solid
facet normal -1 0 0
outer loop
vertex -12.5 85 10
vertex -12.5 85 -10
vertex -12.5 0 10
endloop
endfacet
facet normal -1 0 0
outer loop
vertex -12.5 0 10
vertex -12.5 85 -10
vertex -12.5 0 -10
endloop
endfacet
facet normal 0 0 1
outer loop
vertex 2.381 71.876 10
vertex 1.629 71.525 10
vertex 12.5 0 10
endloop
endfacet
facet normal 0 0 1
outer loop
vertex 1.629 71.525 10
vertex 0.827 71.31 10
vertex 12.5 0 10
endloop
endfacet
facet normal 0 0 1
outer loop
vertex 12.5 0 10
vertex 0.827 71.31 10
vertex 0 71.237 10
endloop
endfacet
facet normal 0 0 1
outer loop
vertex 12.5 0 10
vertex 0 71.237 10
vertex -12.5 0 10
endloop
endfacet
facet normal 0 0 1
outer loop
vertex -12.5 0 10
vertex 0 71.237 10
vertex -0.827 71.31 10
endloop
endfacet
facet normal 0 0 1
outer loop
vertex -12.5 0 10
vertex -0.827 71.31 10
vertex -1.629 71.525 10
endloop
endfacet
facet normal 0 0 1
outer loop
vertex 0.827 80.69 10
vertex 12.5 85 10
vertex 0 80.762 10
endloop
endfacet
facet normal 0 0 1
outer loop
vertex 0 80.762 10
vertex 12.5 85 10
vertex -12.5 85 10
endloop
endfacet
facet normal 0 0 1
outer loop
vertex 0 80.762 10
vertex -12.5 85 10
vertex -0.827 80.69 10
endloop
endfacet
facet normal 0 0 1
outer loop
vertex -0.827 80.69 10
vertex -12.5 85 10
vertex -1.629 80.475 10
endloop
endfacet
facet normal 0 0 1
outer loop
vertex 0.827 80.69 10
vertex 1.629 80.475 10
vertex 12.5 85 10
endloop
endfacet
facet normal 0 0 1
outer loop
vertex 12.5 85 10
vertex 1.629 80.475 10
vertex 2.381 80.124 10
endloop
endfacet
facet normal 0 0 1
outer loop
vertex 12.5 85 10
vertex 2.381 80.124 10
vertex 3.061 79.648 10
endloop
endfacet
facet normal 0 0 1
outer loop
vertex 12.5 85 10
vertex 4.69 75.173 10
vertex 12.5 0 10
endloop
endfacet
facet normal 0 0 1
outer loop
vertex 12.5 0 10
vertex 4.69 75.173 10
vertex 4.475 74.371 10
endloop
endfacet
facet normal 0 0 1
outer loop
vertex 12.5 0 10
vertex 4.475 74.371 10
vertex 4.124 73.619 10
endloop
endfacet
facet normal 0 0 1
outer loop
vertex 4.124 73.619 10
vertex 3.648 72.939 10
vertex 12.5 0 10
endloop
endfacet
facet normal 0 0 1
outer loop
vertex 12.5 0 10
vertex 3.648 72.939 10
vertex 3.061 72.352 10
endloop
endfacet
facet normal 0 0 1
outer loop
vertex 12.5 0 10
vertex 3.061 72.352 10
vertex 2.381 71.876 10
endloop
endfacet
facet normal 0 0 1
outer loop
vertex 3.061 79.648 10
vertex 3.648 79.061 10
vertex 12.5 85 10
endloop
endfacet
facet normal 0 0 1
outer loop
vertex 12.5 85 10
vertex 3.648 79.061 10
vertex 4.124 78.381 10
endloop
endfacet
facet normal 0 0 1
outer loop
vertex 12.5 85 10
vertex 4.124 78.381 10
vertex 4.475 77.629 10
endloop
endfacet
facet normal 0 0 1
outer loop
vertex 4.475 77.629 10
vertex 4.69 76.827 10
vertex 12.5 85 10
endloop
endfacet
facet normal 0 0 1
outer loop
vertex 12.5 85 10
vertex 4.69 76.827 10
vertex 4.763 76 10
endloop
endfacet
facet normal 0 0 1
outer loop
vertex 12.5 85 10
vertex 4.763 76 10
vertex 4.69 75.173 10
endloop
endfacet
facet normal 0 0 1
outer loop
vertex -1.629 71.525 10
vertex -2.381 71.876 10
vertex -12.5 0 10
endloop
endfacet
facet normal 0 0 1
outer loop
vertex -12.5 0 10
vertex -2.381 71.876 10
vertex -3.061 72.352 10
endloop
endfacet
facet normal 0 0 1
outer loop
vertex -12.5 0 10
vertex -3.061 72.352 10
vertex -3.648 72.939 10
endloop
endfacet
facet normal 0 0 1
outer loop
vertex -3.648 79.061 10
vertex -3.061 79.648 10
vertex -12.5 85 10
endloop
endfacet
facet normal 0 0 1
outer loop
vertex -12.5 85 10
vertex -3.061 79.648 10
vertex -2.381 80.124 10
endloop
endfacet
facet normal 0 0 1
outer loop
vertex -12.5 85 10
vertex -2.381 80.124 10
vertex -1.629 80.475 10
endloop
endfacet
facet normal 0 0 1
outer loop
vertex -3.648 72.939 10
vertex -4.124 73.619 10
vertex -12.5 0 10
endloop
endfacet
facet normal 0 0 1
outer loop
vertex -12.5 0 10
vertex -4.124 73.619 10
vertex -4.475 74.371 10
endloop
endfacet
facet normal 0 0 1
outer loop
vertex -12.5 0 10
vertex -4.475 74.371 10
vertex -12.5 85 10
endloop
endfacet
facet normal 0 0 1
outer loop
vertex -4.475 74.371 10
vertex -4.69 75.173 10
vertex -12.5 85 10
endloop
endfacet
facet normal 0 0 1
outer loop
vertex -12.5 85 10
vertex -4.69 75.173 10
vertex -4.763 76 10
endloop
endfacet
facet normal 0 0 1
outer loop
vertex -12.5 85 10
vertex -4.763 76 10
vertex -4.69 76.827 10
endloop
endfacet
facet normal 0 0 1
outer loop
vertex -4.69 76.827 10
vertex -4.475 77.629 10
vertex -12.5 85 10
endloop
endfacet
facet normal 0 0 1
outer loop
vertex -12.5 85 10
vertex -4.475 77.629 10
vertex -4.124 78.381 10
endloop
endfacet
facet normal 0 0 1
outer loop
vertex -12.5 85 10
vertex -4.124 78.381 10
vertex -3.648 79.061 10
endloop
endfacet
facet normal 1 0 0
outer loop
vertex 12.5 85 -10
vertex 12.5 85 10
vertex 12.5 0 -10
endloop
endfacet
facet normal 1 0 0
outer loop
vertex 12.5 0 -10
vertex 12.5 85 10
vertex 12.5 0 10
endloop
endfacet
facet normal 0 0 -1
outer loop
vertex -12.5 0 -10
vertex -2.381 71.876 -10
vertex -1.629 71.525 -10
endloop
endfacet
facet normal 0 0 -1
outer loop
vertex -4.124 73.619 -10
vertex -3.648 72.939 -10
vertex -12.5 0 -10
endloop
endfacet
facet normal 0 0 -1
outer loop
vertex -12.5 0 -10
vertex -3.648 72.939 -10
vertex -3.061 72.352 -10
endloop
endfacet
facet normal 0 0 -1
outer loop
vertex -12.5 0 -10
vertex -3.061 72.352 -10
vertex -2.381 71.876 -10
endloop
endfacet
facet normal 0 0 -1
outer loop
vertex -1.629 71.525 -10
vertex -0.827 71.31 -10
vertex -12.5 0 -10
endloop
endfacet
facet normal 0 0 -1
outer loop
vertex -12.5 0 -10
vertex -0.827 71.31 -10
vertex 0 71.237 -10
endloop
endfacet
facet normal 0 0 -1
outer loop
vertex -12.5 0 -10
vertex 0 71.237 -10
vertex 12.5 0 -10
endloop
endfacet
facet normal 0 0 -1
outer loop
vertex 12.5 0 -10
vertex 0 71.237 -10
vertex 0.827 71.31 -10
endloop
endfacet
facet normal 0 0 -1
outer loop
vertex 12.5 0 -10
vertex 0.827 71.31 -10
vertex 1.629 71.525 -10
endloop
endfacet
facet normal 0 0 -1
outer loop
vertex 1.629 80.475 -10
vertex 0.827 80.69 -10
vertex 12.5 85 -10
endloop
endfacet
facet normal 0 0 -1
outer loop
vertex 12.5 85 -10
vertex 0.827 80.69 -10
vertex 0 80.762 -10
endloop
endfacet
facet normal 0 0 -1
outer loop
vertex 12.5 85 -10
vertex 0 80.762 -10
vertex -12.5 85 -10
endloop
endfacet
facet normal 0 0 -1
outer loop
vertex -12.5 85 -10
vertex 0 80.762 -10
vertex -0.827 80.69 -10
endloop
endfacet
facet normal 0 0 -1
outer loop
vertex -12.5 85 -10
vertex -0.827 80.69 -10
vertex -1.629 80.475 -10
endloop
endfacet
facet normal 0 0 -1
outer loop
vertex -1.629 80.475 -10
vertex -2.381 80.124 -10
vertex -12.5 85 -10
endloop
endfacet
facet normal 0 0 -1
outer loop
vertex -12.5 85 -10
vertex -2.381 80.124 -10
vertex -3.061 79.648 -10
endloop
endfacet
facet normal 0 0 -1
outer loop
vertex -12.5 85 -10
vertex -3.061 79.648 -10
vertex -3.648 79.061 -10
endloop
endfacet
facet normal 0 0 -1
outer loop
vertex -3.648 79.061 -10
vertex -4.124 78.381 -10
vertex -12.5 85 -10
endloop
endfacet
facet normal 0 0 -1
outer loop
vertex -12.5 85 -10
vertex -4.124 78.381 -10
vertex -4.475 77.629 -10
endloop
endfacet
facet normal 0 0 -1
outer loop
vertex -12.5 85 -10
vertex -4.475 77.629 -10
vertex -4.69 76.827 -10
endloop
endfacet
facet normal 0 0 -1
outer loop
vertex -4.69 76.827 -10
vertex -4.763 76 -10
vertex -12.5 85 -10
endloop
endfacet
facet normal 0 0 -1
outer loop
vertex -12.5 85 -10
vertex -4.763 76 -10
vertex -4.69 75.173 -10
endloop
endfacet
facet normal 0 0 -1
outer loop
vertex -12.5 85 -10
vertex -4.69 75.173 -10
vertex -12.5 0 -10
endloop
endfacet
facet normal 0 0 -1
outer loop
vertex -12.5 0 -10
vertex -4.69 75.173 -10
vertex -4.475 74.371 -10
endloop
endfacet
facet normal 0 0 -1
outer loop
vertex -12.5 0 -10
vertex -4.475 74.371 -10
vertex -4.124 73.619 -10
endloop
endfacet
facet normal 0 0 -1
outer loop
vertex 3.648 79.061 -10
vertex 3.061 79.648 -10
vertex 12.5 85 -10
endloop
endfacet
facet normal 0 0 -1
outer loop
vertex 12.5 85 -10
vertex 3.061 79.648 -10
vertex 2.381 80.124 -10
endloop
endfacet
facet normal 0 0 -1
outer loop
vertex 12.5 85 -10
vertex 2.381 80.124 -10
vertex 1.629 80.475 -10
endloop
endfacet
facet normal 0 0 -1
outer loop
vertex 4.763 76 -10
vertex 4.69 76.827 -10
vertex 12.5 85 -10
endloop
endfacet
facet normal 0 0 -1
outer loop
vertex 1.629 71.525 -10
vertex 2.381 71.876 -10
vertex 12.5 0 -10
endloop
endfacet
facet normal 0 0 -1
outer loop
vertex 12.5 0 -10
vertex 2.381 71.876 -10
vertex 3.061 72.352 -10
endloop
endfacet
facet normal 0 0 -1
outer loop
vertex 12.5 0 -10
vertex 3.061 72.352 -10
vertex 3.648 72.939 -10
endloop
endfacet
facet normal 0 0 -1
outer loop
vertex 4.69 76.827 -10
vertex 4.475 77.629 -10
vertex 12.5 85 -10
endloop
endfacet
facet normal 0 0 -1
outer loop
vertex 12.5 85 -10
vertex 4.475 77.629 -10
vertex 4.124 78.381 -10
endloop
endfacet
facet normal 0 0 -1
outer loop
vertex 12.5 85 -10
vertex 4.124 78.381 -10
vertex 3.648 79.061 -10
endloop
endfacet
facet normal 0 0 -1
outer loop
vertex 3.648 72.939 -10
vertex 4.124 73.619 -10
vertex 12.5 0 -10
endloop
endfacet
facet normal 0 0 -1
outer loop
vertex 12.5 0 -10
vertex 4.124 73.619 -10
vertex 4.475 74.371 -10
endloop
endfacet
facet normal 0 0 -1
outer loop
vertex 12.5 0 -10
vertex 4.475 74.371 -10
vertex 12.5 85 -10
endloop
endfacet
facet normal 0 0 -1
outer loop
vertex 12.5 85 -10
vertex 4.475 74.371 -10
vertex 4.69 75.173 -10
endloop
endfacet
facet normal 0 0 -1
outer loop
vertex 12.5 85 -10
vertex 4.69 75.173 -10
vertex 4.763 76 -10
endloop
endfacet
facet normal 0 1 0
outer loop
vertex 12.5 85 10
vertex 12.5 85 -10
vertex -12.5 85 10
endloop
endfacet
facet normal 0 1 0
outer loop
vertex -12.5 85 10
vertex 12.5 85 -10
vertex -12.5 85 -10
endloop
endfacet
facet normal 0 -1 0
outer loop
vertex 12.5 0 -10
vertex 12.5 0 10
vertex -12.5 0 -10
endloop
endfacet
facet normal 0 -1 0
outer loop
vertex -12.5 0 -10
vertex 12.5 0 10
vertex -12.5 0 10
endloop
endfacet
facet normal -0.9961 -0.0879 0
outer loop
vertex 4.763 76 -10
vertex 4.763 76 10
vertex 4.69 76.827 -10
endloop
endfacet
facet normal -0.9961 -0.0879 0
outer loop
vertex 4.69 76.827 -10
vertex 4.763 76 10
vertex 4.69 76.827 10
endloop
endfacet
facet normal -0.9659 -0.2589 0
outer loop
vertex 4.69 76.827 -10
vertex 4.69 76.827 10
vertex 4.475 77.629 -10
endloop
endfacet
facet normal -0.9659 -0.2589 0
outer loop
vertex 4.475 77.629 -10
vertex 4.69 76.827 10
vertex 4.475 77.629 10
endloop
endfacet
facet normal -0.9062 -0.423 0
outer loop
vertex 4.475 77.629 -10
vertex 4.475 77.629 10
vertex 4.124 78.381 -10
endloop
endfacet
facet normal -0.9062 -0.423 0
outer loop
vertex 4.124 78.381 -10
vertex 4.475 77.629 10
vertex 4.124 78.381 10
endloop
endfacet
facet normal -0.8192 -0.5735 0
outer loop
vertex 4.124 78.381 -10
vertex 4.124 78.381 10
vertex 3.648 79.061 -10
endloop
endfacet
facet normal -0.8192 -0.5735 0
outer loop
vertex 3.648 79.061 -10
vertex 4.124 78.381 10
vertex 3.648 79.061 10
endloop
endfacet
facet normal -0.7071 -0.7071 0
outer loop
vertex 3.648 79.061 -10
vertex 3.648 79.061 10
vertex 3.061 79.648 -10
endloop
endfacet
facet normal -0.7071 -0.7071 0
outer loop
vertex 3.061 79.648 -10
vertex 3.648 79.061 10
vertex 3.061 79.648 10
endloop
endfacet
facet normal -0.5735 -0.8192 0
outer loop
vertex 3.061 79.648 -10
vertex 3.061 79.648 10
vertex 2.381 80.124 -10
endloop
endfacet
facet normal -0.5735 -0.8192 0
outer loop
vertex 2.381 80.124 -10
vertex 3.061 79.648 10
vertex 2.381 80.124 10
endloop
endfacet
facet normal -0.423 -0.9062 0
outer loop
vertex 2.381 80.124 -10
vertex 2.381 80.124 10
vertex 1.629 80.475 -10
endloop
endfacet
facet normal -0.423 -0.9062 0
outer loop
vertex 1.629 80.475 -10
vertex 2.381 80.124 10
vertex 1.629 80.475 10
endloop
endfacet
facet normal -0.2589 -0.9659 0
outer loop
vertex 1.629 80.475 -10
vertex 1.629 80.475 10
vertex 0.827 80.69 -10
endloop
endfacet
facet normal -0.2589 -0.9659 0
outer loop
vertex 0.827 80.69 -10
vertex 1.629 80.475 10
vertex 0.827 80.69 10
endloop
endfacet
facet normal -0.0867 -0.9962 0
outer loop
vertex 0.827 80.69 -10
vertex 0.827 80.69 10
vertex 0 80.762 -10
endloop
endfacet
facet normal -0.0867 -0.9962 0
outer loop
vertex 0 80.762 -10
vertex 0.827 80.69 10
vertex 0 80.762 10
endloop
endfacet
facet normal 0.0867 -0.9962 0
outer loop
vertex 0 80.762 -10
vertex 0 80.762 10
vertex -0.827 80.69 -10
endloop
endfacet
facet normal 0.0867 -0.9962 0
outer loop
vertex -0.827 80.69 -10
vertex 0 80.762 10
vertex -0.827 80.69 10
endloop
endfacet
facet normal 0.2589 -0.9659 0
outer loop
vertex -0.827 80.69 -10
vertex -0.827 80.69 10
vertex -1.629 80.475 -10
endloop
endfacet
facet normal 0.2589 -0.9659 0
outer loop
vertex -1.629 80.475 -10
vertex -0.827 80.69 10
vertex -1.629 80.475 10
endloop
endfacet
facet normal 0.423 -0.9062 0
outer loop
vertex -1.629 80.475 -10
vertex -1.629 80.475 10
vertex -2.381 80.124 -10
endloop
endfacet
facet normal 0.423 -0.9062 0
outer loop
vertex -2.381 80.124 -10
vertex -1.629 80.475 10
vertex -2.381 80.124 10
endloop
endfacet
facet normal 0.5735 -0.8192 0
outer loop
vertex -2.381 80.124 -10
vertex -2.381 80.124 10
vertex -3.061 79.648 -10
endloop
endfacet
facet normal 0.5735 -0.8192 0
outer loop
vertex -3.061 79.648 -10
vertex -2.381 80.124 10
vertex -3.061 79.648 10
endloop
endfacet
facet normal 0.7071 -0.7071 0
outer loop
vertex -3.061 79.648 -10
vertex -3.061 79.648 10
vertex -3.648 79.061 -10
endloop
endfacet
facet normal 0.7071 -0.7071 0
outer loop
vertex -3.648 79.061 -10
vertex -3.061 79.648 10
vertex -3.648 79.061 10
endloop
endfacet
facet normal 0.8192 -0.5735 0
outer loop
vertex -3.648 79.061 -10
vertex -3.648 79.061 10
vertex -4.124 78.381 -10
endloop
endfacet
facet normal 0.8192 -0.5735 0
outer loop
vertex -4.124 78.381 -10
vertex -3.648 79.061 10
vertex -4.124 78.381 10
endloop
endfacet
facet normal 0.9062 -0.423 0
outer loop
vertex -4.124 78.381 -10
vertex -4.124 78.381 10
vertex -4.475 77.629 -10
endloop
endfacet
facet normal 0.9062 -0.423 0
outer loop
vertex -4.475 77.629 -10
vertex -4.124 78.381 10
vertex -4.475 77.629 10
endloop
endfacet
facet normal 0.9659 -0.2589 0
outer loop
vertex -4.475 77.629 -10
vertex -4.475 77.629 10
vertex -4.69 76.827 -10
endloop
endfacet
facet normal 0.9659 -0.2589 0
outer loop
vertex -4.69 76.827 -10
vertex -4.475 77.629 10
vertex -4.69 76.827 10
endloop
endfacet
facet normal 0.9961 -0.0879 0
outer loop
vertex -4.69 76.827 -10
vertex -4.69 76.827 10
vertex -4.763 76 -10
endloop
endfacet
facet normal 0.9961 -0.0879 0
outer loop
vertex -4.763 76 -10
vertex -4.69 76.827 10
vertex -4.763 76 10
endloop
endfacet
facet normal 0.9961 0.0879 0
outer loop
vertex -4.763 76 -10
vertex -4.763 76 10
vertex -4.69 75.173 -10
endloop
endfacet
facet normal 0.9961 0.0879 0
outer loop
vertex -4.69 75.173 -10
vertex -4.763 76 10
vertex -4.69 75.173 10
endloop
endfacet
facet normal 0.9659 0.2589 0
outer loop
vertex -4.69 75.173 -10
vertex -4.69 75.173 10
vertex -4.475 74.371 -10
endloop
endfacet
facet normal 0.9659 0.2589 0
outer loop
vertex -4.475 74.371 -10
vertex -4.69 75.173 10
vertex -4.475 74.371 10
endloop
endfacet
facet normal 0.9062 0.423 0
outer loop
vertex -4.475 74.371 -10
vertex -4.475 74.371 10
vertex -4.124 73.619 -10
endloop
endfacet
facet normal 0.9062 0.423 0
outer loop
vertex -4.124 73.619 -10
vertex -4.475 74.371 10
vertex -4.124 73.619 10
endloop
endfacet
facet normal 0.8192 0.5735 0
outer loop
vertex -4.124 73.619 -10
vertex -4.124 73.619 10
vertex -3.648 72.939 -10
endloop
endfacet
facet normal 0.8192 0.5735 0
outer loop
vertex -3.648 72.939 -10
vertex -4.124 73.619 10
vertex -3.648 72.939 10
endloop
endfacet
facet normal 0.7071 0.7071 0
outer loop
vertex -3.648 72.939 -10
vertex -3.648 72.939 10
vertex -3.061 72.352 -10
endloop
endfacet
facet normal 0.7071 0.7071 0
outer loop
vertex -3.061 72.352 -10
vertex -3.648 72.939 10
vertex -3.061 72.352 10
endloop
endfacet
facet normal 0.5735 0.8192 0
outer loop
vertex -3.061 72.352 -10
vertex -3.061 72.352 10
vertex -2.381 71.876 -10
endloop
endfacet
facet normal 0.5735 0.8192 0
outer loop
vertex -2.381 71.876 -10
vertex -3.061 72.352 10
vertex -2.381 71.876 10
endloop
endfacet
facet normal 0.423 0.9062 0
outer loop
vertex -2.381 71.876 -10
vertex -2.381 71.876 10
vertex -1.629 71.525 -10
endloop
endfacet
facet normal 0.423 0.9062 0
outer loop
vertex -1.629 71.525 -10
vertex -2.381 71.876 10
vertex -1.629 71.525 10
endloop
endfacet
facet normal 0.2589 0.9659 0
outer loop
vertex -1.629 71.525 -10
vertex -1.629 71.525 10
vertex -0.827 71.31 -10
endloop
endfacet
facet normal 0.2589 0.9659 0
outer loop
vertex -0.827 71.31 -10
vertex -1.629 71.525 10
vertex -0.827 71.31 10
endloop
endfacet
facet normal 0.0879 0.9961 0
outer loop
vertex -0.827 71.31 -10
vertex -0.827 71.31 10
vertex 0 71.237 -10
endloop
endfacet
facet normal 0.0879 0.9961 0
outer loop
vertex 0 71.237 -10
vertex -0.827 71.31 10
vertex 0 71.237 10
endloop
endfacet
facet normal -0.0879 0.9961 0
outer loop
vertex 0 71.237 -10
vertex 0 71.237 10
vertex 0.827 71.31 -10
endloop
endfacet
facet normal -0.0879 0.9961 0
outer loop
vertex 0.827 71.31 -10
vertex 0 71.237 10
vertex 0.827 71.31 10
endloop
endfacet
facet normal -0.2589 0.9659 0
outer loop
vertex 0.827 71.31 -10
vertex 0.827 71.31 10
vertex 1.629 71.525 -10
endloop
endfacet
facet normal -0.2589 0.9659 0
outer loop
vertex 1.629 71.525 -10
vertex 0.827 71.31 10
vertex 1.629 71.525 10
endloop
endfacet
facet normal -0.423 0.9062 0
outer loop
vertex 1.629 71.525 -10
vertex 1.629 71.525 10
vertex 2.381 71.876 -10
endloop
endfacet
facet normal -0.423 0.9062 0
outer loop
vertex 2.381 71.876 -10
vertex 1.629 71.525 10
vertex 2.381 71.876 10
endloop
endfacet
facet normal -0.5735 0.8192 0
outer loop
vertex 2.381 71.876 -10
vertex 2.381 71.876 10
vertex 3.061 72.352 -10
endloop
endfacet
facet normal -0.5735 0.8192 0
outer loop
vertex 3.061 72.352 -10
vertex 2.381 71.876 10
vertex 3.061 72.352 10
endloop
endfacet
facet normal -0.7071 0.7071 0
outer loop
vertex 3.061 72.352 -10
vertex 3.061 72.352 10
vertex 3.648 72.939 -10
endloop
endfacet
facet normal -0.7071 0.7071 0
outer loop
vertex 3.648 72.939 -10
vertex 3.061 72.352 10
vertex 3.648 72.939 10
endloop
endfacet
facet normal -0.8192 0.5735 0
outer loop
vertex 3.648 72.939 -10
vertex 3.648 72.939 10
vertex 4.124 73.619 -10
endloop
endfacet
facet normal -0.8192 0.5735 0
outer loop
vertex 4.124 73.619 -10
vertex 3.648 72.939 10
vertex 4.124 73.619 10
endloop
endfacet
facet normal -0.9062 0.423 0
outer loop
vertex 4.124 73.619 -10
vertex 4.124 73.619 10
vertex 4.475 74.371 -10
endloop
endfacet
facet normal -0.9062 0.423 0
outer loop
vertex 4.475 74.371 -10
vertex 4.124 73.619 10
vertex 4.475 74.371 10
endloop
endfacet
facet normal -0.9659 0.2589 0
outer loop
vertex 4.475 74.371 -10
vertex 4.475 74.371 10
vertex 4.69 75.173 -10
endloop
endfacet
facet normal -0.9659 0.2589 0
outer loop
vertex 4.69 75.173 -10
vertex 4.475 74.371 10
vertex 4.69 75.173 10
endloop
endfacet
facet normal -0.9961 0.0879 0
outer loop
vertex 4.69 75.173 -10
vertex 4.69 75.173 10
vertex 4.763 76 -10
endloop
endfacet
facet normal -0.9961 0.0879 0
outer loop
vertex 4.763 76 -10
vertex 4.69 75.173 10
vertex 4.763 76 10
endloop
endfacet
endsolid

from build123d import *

# Parameters (mm, degrees)
SKETCH1_W           = 25
SKETCH1_H           = 20
BOSS_EXTRUDE1_DEPTH = 85
SKETCH2_R           = 4.7625
CUT_EXTRUDE1_DEPTH  = 12


with BuildPart() as part:
    # Sketch1 → Boss-Extrude1 (new body)
    with BuildSketch(Plane(origin=(0, 0, 0), x_dir=(1, 0, 0), z_dir=(0, 1, 0))):
        Rectangle(SKETCH1_W, SKETCH1_H)
    extrude(amount=BOSS_EXTRUDE1_DEPTH)

    # Sketch2 → Cut-Extrude1 (cut, symmetric)
    with BuildSketch(Plane.XY):
        with Locations((0, 76)):
            Circle(SKETCH2_R)
    extrude(amount=CUT_EXTRUDE1_DEPTH, both=True, mode=Mode.SUBTRACT)


solid = part.part
